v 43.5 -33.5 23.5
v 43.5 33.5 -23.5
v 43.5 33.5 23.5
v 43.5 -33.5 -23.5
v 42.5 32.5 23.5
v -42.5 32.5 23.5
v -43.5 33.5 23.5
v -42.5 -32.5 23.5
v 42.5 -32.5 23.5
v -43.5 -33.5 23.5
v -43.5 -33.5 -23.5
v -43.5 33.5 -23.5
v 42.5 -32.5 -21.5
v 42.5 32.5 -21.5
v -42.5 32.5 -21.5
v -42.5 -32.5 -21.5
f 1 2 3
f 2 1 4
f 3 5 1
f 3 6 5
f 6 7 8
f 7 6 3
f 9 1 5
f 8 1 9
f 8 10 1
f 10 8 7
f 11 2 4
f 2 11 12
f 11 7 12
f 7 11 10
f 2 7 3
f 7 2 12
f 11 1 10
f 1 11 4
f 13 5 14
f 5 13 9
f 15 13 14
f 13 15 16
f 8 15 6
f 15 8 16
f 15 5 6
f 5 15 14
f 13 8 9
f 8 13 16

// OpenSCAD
wallThickness = 1;
innerLength = 85;
innerWidth = 65;
innerHeight = 45;
outterLength = innerLength + 2*wallThickness;
outterWidth = innerWidth + 2*wallThickness;
outterHeight = innerHeight + 2*wallThickness;

difference(){
	
	cube([outterLength, outterWidth, outterHeight], center=true);
	#translate([0, 0, wallThickness])
		cube([innerLength, innerWidth, innerHeight], center=true);
}
